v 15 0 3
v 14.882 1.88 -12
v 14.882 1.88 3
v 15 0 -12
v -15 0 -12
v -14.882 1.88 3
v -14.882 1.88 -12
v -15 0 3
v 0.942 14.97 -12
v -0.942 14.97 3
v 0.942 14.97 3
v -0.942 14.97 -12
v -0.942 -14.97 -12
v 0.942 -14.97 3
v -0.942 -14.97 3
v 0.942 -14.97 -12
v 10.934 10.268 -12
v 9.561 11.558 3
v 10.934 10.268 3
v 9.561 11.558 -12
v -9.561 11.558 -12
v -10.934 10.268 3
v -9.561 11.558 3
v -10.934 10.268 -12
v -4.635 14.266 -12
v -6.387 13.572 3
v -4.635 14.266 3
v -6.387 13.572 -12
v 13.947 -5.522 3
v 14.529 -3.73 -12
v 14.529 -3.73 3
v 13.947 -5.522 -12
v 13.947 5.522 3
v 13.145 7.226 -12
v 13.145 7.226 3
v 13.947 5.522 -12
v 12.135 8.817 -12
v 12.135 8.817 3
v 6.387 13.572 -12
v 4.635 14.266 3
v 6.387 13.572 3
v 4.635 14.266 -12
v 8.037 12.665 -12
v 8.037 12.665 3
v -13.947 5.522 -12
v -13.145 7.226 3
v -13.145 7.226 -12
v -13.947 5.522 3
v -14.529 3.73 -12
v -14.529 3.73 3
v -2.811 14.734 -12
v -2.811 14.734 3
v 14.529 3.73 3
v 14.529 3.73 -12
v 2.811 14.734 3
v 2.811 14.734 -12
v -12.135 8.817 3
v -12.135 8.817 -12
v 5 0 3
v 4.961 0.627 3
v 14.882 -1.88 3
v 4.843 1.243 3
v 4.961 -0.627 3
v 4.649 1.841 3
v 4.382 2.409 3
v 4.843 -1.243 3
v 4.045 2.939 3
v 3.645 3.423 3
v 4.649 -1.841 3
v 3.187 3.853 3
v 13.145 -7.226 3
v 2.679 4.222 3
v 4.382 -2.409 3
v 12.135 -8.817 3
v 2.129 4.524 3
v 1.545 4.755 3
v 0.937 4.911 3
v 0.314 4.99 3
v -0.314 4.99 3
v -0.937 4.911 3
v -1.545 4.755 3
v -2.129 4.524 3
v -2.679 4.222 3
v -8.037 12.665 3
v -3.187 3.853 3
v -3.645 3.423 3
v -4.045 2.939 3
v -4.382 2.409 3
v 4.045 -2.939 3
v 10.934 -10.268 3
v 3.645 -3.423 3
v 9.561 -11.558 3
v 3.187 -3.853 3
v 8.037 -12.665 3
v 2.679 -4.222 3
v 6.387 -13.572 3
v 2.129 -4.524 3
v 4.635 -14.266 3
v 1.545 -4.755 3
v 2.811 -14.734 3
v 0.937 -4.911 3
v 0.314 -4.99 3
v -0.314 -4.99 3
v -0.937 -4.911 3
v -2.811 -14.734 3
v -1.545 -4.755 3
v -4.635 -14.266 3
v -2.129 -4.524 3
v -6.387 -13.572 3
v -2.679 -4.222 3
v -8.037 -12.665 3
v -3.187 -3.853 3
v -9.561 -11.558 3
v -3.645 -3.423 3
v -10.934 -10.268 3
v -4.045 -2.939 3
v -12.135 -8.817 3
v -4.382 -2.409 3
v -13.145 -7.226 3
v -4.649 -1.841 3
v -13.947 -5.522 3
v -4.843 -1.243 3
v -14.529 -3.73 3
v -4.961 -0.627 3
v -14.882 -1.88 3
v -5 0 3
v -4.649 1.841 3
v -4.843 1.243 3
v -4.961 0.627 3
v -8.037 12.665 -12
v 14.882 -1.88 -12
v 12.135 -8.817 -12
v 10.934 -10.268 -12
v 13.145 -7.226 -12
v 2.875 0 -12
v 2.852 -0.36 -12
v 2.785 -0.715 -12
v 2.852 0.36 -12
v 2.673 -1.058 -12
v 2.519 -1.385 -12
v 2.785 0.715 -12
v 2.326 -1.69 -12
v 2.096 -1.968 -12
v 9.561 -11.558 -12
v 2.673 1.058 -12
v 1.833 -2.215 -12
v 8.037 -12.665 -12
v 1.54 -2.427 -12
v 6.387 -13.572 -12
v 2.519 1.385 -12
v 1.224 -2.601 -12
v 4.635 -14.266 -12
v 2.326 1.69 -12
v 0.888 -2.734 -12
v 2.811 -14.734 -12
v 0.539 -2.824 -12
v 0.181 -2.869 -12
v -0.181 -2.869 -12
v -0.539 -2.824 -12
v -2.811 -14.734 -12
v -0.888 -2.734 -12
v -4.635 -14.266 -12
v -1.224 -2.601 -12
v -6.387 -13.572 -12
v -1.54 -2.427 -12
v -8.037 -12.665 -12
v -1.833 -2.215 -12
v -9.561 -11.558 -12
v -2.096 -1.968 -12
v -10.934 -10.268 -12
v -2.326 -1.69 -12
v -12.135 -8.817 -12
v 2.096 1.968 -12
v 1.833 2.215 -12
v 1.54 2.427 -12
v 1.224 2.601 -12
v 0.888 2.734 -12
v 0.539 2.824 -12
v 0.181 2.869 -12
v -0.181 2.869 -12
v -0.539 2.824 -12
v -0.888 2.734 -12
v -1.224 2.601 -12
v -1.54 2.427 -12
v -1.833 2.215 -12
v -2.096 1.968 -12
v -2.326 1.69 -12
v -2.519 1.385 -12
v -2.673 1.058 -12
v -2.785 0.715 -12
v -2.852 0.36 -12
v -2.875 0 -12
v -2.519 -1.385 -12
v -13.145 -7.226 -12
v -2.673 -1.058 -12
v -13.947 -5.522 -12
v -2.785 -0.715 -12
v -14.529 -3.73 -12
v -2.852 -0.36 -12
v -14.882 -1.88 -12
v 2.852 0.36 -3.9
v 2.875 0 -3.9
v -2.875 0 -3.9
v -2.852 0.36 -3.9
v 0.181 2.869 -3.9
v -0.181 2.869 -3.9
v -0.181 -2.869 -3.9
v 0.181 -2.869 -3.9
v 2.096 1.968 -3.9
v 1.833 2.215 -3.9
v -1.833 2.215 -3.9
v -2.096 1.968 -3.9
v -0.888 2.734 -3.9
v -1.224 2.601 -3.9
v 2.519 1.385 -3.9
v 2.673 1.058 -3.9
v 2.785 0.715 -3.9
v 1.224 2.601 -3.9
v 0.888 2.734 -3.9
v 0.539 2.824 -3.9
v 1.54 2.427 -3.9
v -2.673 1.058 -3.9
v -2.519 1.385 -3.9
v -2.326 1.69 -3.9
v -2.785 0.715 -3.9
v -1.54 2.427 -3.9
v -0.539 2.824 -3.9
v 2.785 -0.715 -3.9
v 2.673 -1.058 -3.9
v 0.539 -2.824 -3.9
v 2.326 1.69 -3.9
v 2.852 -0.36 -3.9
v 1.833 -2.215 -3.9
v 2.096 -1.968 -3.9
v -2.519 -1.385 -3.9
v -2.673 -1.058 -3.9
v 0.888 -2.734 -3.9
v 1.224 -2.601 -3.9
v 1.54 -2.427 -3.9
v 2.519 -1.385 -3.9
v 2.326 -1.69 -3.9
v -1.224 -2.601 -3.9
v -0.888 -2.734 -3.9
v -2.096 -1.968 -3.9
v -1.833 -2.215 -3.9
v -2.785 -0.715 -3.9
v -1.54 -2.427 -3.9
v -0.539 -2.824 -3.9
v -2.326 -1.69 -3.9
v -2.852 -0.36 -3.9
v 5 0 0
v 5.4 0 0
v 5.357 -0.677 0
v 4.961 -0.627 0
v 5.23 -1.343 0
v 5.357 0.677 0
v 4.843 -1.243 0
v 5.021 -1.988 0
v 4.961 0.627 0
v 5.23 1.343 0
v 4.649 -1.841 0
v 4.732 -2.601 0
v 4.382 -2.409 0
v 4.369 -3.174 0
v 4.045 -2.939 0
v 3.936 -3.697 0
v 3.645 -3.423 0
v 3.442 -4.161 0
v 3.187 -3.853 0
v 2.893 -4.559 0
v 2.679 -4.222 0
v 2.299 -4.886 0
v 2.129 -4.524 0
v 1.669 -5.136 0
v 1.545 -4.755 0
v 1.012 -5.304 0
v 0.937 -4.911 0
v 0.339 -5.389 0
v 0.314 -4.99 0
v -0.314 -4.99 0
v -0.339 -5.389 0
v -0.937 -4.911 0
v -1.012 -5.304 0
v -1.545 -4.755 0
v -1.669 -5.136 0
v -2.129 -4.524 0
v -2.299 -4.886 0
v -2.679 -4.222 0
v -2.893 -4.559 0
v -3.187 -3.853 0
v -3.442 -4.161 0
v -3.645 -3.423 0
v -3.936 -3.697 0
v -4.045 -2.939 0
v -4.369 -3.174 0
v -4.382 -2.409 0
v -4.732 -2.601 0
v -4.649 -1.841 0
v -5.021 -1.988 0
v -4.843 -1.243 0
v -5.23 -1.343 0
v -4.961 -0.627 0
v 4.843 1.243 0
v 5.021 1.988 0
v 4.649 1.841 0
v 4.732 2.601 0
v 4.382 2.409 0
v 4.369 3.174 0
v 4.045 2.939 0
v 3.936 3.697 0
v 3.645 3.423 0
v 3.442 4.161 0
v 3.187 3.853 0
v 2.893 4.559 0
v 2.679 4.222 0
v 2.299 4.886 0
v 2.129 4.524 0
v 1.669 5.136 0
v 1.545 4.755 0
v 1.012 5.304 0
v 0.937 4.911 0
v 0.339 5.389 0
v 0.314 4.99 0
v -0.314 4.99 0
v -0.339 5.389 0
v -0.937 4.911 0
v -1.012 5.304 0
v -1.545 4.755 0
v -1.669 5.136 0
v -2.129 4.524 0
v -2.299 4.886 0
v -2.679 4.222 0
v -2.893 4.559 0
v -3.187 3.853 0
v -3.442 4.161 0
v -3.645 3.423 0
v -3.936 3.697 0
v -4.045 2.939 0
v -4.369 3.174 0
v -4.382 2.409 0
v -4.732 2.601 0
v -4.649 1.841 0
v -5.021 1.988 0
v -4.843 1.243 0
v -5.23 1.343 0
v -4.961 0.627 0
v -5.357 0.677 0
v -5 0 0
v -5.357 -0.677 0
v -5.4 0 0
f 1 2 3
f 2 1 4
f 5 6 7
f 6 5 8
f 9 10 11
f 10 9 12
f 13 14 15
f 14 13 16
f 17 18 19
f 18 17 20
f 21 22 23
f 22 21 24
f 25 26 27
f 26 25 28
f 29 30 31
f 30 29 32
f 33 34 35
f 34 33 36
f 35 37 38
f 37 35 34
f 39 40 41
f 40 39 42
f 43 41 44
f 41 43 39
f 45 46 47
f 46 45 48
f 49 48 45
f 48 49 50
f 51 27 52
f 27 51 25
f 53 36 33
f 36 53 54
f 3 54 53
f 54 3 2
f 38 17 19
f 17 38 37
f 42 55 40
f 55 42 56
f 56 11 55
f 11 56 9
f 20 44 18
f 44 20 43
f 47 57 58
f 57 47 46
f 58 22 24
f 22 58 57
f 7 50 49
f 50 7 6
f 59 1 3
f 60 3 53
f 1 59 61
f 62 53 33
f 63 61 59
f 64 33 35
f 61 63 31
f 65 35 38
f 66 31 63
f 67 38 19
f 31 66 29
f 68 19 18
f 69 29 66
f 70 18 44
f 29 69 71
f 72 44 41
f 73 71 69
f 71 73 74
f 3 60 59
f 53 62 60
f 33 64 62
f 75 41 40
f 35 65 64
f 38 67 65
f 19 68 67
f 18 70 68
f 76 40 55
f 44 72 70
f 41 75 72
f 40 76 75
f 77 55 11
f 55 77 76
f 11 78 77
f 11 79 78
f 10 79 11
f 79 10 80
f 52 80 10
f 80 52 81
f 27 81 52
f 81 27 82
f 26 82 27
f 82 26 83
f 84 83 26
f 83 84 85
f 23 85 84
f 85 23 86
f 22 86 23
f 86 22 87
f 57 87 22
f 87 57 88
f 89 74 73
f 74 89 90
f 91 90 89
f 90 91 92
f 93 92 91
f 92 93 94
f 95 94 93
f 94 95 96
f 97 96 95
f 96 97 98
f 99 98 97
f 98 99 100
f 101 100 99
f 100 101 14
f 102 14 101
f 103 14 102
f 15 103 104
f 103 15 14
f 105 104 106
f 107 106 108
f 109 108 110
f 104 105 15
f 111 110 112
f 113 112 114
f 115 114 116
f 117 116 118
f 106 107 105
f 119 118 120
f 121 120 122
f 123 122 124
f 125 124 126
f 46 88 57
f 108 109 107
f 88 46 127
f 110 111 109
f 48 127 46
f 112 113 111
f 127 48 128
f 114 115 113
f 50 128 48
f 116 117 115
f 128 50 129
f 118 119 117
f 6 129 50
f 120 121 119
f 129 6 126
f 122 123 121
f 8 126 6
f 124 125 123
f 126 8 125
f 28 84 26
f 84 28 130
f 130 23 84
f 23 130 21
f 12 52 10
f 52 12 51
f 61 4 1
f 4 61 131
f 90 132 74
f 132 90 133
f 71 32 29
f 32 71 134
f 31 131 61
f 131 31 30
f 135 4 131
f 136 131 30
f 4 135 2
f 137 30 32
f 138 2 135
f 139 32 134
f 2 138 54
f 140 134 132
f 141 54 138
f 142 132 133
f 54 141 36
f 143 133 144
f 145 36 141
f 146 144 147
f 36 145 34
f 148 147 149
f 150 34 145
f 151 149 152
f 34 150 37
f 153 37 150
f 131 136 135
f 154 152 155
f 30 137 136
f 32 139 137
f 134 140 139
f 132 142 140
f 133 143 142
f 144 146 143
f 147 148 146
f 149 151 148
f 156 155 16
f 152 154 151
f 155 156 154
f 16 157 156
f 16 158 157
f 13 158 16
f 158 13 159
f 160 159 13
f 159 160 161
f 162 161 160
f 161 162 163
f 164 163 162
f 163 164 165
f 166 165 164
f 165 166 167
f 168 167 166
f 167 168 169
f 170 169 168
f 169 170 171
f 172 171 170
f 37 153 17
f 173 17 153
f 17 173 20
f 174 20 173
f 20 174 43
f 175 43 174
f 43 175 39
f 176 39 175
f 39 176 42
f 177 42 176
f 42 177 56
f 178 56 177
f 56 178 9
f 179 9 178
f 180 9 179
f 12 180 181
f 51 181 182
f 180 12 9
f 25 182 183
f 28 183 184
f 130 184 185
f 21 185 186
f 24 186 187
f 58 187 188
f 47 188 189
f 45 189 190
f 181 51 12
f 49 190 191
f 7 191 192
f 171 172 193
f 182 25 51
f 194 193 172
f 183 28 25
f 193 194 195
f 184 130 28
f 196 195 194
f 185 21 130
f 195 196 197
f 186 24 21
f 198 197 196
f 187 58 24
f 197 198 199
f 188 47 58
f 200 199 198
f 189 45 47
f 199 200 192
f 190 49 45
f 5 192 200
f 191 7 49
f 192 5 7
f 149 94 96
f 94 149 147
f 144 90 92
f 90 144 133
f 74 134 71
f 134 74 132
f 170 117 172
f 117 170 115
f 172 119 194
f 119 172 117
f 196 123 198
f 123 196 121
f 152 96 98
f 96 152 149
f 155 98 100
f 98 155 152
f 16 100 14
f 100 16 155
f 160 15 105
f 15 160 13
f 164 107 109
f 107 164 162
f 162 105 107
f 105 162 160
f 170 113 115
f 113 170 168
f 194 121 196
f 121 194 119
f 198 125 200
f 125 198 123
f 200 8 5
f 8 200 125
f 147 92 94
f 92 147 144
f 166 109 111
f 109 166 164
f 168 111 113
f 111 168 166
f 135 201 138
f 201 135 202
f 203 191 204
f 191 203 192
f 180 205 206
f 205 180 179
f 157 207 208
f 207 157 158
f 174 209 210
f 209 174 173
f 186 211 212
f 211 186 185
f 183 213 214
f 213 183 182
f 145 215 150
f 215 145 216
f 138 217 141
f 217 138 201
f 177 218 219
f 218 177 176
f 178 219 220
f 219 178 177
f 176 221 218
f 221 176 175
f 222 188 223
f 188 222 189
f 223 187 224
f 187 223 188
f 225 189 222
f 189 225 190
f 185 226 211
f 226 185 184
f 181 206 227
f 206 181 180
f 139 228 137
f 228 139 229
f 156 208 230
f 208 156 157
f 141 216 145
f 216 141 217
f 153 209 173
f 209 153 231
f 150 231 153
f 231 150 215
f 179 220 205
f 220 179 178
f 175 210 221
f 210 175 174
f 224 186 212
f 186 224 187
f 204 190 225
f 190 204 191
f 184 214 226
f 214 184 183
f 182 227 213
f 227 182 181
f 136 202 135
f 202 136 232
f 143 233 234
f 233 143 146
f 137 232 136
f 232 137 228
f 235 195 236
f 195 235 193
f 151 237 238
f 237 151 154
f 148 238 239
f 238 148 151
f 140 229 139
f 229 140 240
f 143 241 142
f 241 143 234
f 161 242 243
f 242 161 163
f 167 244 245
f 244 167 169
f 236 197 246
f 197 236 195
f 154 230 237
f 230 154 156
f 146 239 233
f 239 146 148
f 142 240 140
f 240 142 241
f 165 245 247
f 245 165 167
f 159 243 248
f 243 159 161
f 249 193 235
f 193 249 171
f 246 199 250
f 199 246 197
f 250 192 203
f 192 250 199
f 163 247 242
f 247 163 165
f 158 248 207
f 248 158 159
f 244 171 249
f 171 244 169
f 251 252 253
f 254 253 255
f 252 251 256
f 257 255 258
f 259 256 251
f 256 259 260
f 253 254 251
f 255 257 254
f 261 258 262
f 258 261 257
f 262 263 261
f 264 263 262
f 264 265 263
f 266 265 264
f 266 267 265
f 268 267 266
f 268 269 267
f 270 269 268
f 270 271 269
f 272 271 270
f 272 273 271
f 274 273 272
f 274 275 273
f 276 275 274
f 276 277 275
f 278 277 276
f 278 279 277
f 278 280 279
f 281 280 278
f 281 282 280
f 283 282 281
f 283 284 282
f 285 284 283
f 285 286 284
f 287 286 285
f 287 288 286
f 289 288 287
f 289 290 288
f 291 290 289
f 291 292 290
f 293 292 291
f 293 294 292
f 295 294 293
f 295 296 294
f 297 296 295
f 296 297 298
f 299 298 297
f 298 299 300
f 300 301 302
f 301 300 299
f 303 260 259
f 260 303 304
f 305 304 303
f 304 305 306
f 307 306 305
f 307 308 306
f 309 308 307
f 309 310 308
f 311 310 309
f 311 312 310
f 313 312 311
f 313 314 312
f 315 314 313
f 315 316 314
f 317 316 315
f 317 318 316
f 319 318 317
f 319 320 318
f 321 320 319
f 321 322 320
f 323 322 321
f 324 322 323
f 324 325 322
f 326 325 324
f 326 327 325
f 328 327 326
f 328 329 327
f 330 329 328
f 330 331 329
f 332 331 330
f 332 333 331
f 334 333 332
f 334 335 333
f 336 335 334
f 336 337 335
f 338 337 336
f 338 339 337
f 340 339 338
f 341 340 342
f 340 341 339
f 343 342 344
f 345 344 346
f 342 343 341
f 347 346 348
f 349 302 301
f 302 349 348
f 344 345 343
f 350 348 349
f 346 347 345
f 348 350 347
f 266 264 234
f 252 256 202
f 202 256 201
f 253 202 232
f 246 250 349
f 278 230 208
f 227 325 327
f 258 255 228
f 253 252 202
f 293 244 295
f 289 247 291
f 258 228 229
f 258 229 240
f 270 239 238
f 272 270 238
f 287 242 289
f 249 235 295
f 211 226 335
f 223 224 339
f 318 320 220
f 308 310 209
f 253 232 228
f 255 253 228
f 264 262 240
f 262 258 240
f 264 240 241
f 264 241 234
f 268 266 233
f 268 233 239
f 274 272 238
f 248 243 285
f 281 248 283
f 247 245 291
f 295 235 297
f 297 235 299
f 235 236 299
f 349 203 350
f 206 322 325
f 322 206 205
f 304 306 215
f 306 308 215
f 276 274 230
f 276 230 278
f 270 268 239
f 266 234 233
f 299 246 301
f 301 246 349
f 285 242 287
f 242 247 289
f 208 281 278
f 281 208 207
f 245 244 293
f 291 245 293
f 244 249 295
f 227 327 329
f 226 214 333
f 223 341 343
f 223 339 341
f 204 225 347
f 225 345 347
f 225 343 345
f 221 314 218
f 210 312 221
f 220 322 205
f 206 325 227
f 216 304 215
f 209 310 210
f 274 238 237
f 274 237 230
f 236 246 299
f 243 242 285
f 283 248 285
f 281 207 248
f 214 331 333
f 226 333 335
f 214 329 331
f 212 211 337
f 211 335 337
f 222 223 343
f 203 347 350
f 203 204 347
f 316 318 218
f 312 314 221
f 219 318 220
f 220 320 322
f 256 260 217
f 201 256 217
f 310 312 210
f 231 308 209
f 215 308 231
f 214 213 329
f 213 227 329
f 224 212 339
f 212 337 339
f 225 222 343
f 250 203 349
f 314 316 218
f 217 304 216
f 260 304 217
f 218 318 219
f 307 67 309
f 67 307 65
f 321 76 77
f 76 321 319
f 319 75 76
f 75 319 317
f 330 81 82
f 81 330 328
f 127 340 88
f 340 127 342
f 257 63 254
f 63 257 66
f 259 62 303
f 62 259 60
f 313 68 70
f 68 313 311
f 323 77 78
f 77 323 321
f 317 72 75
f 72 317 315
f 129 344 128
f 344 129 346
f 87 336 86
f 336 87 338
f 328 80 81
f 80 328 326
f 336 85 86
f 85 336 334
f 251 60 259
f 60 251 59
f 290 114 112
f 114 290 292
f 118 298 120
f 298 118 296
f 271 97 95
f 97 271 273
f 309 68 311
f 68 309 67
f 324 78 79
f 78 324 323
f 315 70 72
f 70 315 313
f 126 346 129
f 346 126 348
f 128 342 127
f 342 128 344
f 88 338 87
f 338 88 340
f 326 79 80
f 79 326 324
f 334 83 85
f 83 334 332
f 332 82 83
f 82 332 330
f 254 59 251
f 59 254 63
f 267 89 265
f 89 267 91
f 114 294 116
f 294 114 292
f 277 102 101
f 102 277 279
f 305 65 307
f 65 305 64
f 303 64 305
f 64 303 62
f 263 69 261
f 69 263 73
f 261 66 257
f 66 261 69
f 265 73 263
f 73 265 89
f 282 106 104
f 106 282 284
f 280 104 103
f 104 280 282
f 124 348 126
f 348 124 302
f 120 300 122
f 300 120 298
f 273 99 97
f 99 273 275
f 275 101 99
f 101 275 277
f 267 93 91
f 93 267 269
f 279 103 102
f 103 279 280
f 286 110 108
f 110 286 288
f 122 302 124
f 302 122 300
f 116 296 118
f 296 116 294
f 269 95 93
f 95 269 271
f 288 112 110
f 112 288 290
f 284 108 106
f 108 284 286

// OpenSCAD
$fn = 50;

difference() {
	union() {
		translate(v = [0, 0, -12.0]) {
			cylinder(h = 15, r = 15.0);
		}
		#translate(v = [0, 0, -15.0]) {
			cylinder(h = 15, r = 2.875);
		}
	}
	union() {
		translate(v = [0, 0, 0]) {
			rotate(a = [0, 0, 0]) {
				difference() {
					union() {
						translate(v = [0, 0, -15.0]) {
							cylinder(h = 15, r = 2.6);
						}
						translate(v = [0, 0, -3.9]) {
							cylinder(h = 3.9, r1 = 2.875, r2 = 5.4);
						}
						translate(v = [0, 0, -15.0]) {
							cylinder(h = 15, r = 2.875);
						}
						translate(v = [0, 0, -15.0]) {
							cylinder(h = 15, r = 2.6);
						}
					}
					union();
				}
			}
		}
		#cylinder(h = 3, r = 5.0);
	}
}
